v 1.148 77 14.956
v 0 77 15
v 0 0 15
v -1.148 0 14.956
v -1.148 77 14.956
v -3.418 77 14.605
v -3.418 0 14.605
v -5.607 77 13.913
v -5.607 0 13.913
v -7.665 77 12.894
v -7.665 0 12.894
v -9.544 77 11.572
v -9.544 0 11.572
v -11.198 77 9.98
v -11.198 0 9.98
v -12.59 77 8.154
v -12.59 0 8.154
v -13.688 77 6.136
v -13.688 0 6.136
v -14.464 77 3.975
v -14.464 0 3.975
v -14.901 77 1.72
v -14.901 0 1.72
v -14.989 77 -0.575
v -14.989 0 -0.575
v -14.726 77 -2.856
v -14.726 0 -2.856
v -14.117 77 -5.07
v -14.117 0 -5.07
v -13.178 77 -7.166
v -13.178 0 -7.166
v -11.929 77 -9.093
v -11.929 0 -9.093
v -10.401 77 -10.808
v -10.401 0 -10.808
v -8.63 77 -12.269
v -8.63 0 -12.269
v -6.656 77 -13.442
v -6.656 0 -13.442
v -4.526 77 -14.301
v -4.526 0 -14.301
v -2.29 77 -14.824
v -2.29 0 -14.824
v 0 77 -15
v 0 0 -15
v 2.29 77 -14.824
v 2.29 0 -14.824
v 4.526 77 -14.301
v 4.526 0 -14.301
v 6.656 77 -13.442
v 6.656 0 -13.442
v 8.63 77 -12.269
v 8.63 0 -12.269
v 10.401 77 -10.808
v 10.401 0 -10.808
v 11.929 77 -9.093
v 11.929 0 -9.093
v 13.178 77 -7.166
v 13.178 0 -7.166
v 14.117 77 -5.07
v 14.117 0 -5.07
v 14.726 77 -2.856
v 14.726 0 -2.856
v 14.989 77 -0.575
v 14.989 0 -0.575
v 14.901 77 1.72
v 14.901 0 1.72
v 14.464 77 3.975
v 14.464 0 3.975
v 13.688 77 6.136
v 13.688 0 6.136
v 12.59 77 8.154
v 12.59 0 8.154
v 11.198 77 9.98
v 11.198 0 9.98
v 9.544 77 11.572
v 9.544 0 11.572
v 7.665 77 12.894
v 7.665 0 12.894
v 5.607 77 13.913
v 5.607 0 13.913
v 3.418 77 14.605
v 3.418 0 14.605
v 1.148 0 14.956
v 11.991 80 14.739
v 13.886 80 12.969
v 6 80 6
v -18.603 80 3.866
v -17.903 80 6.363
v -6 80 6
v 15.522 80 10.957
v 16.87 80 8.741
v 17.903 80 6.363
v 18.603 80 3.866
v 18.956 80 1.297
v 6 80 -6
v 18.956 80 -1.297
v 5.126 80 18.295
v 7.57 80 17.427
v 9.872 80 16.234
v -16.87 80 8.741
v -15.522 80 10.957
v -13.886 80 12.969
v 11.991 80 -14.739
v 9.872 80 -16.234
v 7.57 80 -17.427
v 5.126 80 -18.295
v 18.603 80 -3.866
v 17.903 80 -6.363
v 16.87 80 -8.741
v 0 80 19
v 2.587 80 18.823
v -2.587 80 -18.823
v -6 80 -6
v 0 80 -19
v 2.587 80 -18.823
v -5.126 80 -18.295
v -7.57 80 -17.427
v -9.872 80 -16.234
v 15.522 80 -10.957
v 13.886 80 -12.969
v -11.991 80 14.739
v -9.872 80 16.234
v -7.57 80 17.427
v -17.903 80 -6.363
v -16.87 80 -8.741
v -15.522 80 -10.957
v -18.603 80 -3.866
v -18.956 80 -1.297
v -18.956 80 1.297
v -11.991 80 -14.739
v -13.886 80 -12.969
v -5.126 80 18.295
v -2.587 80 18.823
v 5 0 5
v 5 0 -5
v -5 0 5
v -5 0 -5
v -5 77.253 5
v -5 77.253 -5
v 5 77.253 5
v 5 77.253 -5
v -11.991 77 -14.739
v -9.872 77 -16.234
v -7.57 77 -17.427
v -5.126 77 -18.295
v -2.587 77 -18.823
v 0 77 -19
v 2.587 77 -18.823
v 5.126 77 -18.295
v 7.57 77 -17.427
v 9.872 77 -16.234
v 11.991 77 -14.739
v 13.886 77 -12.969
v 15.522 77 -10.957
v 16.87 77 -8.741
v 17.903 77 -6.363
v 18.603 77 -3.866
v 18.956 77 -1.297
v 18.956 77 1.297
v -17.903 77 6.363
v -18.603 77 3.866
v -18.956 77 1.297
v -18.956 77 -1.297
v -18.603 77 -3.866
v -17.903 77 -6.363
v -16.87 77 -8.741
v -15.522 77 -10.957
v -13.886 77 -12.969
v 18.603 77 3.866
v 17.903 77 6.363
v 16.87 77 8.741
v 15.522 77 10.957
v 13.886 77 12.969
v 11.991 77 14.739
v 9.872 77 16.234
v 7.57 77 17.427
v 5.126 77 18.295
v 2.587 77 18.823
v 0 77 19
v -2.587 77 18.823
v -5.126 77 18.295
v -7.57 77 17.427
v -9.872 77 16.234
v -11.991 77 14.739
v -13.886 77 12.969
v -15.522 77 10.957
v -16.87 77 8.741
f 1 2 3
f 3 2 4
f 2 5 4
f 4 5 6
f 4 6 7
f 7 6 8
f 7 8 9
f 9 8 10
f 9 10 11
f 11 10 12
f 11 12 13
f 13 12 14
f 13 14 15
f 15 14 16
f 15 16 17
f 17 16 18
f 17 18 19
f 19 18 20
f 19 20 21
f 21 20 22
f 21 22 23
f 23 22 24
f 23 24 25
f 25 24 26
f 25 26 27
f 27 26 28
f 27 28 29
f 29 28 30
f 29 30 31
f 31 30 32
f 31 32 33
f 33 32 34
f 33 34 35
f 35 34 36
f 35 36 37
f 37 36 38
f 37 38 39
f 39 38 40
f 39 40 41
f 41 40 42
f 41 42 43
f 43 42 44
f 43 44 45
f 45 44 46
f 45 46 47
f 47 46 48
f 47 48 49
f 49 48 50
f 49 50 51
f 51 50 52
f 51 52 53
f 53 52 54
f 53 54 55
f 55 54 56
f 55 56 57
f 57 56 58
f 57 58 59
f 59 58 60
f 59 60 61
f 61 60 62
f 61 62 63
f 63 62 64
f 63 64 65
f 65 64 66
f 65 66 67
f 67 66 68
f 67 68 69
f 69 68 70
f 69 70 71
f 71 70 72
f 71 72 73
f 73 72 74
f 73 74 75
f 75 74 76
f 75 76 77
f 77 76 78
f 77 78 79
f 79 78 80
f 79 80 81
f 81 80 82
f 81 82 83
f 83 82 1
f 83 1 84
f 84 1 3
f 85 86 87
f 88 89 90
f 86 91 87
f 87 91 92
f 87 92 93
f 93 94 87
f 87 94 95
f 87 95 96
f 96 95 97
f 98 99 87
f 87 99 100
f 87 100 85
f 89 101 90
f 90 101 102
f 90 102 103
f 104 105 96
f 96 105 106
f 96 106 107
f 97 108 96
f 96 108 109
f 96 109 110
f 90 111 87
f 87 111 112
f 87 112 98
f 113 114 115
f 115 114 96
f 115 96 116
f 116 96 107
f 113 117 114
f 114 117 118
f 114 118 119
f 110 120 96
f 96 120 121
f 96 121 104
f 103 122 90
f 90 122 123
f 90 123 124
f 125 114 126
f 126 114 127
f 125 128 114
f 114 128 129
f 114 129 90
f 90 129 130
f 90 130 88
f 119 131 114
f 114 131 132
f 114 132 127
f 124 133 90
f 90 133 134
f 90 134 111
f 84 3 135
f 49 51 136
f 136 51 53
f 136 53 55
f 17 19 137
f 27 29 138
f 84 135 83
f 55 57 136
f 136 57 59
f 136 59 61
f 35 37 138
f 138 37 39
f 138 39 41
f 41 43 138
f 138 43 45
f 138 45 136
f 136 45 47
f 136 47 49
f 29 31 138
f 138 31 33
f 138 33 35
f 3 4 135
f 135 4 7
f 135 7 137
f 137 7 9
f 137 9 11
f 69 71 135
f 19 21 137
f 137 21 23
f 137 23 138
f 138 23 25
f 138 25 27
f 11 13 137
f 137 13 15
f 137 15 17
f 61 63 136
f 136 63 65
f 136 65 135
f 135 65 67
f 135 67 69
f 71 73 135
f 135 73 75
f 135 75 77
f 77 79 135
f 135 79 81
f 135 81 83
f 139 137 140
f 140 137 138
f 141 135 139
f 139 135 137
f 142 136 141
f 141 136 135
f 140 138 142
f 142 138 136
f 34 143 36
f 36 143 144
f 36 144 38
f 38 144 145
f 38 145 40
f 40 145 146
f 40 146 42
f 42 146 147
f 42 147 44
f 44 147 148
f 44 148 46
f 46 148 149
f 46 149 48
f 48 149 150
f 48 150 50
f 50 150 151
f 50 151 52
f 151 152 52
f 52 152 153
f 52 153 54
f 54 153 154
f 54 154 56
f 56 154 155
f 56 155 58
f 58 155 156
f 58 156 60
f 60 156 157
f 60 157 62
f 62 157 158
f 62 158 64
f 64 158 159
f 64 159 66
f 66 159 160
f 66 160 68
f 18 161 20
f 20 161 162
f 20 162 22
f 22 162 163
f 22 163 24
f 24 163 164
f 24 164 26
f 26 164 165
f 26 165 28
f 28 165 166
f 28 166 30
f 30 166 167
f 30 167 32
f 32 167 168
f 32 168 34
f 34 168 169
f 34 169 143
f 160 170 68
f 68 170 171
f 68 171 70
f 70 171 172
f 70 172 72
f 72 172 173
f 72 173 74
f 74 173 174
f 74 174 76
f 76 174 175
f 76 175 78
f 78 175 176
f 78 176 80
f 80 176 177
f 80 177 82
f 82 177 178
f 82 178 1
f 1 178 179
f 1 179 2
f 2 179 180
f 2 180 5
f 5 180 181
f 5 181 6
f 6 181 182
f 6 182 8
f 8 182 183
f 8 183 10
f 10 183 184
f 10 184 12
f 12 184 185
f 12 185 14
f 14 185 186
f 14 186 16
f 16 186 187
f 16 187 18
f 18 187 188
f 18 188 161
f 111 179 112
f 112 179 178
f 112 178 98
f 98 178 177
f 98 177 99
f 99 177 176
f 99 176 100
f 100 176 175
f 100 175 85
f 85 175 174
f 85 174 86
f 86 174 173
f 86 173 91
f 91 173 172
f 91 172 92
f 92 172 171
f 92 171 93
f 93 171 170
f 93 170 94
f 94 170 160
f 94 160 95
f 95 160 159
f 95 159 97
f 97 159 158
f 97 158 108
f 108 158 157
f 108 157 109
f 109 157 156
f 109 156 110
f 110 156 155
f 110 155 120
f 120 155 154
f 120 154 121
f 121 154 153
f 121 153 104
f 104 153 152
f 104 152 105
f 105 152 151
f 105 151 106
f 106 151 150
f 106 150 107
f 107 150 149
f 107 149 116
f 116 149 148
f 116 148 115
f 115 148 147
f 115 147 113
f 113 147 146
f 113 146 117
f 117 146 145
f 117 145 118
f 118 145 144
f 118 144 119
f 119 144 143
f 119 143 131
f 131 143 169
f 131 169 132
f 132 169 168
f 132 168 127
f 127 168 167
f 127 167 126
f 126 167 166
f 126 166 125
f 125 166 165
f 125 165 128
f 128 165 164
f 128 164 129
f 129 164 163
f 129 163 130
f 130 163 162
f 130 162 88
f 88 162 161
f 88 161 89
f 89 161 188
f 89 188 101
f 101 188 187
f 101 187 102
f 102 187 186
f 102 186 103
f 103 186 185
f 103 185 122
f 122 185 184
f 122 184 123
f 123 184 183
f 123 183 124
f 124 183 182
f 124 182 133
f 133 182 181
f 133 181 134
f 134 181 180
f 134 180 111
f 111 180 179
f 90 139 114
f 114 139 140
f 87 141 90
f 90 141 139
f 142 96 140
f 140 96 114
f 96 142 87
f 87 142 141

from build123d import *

# Parameters (mm, degrees)
SKETCH_1_R          = 15
SKETCH_1_W          = 10
SKETCH_1_H          = 10
EXTRUDE_1_DEPTH     = 80
SKETCH1_R           = 19
SKETCH1_W           = 10
SKETCH1_H           = 10
BOSS_EXTRUDE1_DEPTH = 3
CHAMFER1_SIZE       = 1
CHAMFER1_SIZE2      = 2.747477419


with BuildPart() as part:
    # Эскиз1 → Бобышка-Вытянуть1 (new body)
    with BuildSketch(Plane(origin=(0, 0, 0), x_dir=(1, 0, 0), z_dir=(0, 1, 0))):
        Circle(SKETCH_1_R)
        Rectangle(SKETCH_1_W, SKETCH_1_H, mode=Mode.SUBTRACT)
    extrude(amount=EXTRUDE_1_DEPTH)

    # Sketch1 → Boss-Extrude1 (add)
    with BuildSketch(Plane(origin=(0, 80, 0), x_dir=(1, 0, 0), z_dir=(0, 1, 0))):
        Circle(SKETCH1_R)
        Rectangle(SKETCH1_W, SKETCH1_H, mode=Mode.SUBTRACT)
    extrude(amount=-BOSS_EXTRUDE1_DEPTH)

    # Chamfer1
    chamfer1_edges = [part.edges().sort_by_distance(p)[0] for p in [
        (0, 80, -5),
        (-5, 80, 0),
        (0, 80, 5),
        (5, 80, 0),
    ]]
    chamfer1_side = [part.faces().sort_by_distance(p)[0] for p in [
        (-18.462598846, 80, 0),
    ]]
    chamfer(chamfer1_edges, length=CHAMFER1_SIZE, length2=CHAMFER1_SIZE2, reference=chamfer1_side[0])


solid = part.part
